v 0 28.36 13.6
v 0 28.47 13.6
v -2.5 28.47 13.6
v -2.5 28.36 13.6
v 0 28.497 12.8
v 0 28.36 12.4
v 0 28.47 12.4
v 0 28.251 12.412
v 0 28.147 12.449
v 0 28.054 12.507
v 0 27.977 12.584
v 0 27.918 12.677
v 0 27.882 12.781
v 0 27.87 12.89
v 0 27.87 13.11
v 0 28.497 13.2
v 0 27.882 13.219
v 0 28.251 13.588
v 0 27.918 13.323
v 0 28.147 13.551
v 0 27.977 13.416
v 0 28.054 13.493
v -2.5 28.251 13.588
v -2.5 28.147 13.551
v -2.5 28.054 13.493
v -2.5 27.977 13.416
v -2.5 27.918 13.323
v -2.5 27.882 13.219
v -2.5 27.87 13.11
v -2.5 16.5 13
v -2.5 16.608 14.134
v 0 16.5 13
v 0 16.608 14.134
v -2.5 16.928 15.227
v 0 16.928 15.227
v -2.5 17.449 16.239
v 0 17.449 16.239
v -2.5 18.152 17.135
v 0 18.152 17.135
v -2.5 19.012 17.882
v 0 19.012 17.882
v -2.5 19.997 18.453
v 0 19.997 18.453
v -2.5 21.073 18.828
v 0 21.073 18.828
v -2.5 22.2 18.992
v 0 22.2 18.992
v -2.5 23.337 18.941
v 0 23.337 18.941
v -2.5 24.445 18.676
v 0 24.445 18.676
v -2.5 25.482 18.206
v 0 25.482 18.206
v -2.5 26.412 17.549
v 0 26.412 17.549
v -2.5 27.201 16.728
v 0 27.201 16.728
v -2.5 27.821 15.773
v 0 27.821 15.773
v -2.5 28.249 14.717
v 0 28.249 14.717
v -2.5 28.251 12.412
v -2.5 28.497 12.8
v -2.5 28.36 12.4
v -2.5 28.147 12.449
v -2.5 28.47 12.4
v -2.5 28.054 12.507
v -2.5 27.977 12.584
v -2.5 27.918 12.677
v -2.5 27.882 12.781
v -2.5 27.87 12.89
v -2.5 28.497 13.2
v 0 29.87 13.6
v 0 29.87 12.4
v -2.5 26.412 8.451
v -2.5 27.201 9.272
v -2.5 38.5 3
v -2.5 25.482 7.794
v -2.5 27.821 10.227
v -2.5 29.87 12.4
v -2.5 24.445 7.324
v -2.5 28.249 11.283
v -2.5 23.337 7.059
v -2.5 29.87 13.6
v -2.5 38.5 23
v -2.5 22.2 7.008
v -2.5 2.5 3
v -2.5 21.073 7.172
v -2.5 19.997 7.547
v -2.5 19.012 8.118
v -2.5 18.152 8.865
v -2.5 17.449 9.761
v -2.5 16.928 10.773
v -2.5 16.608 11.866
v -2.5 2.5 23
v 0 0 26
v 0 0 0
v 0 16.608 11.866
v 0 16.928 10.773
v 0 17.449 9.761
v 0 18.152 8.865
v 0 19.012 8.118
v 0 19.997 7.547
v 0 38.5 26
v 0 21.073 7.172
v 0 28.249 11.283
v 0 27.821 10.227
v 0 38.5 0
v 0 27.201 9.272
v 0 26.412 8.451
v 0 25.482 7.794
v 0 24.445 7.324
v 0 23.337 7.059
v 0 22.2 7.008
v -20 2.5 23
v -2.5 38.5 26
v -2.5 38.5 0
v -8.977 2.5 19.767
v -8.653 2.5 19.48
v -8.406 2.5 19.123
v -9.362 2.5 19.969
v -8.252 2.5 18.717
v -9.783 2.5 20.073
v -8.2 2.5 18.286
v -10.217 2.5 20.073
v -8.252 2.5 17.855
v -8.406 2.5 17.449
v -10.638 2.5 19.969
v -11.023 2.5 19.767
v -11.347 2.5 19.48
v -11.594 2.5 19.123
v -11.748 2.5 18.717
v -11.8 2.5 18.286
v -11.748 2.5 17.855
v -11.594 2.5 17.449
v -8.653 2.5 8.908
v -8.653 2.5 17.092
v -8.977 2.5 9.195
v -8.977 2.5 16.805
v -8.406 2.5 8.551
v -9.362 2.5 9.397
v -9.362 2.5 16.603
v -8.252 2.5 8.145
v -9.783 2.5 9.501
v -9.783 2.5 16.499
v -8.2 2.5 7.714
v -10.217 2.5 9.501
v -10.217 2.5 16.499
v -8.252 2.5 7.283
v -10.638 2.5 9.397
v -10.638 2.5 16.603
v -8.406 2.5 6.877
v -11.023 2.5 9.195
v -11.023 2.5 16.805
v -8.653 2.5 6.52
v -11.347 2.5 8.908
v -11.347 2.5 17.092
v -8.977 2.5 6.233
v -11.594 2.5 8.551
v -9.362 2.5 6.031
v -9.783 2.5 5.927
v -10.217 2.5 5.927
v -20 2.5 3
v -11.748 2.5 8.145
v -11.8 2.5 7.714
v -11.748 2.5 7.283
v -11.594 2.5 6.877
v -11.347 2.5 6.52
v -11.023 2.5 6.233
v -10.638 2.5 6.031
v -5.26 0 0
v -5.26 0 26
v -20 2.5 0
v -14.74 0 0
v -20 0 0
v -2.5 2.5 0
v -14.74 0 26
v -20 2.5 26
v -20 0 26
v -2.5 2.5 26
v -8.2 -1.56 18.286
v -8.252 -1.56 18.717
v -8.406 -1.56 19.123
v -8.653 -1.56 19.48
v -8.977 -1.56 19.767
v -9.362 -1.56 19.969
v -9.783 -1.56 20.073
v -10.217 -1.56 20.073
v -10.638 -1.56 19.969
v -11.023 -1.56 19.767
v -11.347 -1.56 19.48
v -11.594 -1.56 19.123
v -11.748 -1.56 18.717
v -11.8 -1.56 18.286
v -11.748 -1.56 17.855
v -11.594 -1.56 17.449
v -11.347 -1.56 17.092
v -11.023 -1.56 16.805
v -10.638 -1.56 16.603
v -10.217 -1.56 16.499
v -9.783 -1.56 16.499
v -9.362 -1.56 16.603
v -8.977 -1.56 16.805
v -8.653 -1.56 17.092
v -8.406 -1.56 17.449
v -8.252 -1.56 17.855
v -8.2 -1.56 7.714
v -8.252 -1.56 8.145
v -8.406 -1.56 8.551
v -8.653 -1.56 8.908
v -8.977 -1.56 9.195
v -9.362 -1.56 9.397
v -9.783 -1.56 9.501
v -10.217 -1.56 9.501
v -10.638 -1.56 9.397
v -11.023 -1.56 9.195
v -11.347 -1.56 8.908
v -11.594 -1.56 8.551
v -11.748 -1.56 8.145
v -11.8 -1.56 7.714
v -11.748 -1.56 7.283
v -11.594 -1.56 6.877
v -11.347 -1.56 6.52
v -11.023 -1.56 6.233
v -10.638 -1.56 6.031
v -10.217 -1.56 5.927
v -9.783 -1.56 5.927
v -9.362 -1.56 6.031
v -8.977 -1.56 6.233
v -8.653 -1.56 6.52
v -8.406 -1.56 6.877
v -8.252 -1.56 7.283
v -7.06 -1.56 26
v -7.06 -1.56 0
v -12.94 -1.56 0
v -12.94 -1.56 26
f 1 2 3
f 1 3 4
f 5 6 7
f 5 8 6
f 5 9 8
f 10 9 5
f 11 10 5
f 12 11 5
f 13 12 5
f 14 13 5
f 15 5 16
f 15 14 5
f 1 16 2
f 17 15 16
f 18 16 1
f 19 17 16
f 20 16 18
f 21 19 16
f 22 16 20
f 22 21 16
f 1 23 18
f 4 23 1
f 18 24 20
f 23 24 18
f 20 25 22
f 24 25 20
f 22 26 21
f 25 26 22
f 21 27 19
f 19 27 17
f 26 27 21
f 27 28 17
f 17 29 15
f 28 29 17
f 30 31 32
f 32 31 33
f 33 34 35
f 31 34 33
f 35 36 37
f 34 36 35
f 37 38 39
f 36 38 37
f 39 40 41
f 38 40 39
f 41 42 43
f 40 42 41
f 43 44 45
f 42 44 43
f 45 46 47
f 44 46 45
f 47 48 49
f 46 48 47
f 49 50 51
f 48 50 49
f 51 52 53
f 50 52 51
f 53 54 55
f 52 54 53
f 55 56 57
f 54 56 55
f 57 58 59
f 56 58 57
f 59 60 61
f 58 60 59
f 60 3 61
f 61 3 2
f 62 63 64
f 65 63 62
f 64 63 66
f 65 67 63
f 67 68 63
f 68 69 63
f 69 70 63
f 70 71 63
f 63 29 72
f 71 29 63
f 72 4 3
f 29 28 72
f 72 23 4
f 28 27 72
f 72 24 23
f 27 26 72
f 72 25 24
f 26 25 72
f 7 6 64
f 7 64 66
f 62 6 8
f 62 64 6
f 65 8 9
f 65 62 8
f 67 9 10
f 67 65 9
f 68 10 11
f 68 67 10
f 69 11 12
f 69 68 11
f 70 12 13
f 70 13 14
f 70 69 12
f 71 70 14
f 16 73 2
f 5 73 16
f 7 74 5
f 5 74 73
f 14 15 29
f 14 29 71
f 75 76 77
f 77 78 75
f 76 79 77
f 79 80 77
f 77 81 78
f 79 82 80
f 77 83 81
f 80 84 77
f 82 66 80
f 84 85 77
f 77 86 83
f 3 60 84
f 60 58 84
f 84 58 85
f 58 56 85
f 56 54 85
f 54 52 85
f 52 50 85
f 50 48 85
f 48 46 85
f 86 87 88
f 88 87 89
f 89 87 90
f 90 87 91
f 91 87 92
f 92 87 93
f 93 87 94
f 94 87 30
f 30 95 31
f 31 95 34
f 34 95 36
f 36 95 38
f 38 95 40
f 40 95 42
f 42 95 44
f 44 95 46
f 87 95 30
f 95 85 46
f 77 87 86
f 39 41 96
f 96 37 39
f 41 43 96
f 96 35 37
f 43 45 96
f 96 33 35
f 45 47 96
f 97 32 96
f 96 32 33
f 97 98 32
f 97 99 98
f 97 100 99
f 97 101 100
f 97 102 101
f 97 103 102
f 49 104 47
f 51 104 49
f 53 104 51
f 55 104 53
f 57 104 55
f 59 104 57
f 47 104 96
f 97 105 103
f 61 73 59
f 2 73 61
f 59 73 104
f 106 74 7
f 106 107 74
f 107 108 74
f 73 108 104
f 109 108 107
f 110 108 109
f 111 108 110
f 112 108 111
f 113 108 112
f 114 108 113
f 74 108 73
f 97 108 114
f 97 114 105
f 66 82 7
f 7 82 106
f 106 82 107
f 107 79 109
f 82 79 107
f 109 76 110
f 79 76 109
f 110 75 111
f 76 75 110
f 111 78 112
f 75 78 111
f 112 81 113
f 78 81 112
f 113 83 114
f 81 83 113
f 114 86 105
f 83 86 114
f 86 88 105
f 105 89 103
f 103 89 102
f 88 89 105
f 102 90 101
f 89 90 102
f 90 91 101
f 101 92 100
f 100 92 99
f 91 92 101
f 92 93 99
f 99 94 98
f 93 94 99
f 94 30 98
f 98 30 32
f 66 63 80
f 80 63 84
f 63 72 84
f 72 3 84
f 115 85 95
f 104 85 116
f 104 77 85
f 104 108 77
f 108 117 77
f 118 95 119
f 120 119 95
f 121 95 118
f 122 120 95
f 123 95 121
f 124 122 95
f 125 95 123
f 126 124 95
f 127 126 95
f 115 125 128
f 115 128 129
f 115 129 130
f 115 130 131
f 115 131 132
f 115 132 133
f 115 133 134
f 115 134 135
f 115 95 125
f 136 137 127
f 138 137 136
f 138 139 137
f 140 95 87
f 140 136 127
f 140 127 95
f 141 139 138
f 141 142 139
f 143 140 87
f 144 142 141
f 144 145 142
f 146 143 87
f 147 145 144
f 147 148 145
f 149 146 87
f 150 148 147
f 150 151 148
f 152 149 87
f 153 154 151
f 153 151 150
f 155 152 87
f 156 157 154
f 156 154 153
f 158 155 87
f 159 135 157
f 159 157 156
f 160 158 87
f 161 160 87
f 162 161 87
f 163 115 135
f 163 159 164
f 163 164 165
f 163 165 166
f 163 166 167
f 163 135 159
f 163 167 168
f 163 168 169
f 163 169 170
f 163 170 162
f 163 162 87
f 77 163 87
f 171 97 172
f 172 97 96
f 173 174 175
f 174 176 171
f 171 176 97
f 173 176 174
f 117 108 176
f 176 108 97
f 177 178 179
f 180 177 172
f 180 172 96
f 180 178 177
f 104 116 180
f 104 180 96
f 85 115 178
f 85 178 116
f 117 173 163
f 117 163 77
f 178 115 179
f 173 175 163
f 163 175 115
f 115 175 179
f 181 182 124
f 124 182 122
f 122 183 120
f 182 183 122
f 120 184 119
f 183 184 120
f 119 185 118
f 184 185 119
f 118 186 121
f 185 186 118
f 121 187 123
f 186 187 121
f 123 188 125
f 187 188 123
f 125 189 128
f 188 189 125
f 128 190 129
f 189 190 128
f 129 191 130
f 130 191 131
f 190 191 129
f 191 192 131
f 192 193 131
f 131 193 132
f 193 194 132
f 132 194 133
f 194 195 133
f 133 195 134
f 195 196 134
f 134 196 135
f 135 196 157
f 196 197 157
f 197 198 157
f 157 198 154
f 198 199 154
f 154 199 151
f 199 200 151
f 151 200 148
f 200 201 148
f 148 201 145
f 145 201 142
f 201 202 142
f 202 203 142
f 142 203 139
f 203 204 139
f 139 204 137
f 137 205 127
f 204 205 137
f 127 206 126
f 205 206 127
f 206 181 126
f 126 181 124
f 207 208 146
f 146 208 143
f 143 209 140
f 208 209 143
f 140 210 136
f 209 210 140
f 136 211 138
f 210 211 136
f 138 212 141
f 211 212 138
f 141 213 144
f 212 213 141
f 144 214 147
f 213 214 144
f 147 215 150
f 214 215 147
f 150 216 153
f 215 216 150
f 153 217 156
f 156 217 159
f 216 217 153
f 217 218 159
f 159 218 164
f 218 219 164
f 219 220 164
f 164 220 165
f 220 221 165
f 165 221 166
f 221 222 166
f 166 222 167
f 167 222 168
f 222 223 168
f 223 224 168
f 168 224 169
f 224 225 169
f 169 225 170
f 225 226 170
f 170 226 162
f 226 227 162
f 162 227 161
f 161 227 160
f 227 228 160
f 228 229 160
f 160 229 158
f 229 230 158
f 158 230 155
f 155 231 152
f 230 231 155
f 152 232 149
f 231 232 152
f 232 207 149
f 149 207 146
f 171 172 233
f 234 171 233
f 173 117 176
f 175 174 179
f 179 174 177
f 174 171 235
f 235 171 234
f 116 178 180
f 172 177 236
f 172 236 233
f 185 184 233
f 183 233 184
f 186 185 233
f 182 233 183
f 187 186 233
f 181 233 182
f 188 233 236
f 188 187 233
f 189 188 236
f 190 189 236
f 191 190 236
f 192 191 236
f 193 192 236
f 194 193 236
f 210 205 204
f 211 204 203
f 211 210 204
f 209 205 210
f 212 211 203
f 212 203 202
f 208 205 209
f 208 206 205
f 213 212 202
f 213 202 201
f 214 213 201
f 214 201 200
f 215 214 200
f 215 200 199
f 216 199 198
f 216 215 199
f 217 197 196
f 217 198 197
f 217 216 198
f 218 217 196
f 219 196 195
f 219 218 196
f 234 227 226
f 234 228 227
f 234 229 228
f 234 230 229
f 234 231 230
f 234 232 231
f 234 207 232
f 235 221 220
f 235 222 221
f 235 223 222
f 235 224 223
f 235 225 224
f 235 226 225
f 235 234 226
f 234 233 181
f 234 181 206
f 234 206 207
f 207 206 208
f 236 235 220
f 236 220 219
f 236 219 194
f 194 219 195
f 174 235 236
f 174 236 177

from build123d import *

# Parameters (mm, degrees)
PAD_DEPTH       = 26
PAD001_DEPTH    = 26
SKETCH002_W     = 36
SKETCH002_H     = 20
POCKET_DEPTH    = 17.5
PAD002_DEPTH    = 26
SKETCH004_R     = 1.8
POCKET001_DEPTH = 40.061
SKETCH005_R     = 6
POCKET002_DEPTH = 2.501
SKETCH006_W     = 2
SKETCH006_H     = 1.2
PAD003_DEPTH    = 2.5
FILLET_R        = 0.49


with BuildPart() as part:
    # Sketch → Pad (new body)
    with BuildSketch(Plane.XY):
        Polygon((0, 0), (0, 38.5), (-2.5, 38.5), (-2.5, 2.5), (-20, 2.5), (-20, 0), align=None)
    extrude(amount=PAD_DEPTH)

    # Sketch001 (on Face7 of Pad) → Pad001 (join)
    with BuildSketch(Plane(origin=(0, 0, 0), x_dir=(1, 0, 0), z_dir=(0, 0, -1))):
        Polygon((-20, -2.5), (-2.5, -38.5), (-2.5, -2.5), align=None)
    extrude(amount=-PAD001_DEPTH)

    # Sketch002 (on Face6 of Pad001) → Pocket (cut)
    with BuildSketch(Plane(origin=(-20, 0, 0), x_dir=(0, -1, 0), z_dir=(-1, 0, 0))):
        with Locations((-20.5, 13)):
            Rectangle(SKETCH002_W, SKETCH002_H)
    extrude(amount=-POCKET_DEPTH, mode=Mode.SUBTRACT)

    # Sketch003 (on Face4 of Pocket) → Pad002 (join)
    with BuildSketch(Plane(origin=(0, 0, 0), x_dir=(1, 0, 0), z_dir=(0, 0, -1))):
        Polygon((-14.74, 0), (-5.26, 0), (-7.06, 1.56), (-12.94, 1.56), align=None)
    extrude(amount=-PAD002_DEPTH)

    # Sketch004 (on Face16 of Pad002) → Pocket001 (cut, through all)
    with BuildSketch(Plane.XZ.offset(1.56)):
        with Locations((-10, 18.286)):
            Circle(SKETCH004_R)
        with Locations((-10, 7.714)):
            Circle(SKETCH004_R)
    extrude(amount=-POCKET001_DEPTH, mode=Mode.SUBTRACT)

    # Sketch005 (on Face8 of Pocket001) → Pocket002 (cut, through all)
    with BuildSketch(Plane(origin=(-2.5, 0, 0), x_dir=(0, -1, 0), z_dir=(-1, 0, 0))):
        with Locations((-22.5, 13)):
            Circle(SKETCH005_R)
    extrude(amount=-POCKET002_DEPTH, mode=Mode.SUBTRACT)

    # Sketch006 (on Face1 of Pocket002) → Pad003 (join)
    with BuildSketch(Plane.YZ):
        with Locations((28.869925, 13)):
            Rectangle(SKETCH006_W, SKETCH006_H)
    extrude(amount=-PAD003_DEPTH)

    # Fillet
    fillet_edges = [part.edges().sort_by_distance(p)[0] for p in [
        (-1.25, 27.869925, 12.4),
        (-1.25, 27.869925, 13.6),
    ]]
    fillet(fillet_edges, radius=FILLET_R)


solid = part.part
